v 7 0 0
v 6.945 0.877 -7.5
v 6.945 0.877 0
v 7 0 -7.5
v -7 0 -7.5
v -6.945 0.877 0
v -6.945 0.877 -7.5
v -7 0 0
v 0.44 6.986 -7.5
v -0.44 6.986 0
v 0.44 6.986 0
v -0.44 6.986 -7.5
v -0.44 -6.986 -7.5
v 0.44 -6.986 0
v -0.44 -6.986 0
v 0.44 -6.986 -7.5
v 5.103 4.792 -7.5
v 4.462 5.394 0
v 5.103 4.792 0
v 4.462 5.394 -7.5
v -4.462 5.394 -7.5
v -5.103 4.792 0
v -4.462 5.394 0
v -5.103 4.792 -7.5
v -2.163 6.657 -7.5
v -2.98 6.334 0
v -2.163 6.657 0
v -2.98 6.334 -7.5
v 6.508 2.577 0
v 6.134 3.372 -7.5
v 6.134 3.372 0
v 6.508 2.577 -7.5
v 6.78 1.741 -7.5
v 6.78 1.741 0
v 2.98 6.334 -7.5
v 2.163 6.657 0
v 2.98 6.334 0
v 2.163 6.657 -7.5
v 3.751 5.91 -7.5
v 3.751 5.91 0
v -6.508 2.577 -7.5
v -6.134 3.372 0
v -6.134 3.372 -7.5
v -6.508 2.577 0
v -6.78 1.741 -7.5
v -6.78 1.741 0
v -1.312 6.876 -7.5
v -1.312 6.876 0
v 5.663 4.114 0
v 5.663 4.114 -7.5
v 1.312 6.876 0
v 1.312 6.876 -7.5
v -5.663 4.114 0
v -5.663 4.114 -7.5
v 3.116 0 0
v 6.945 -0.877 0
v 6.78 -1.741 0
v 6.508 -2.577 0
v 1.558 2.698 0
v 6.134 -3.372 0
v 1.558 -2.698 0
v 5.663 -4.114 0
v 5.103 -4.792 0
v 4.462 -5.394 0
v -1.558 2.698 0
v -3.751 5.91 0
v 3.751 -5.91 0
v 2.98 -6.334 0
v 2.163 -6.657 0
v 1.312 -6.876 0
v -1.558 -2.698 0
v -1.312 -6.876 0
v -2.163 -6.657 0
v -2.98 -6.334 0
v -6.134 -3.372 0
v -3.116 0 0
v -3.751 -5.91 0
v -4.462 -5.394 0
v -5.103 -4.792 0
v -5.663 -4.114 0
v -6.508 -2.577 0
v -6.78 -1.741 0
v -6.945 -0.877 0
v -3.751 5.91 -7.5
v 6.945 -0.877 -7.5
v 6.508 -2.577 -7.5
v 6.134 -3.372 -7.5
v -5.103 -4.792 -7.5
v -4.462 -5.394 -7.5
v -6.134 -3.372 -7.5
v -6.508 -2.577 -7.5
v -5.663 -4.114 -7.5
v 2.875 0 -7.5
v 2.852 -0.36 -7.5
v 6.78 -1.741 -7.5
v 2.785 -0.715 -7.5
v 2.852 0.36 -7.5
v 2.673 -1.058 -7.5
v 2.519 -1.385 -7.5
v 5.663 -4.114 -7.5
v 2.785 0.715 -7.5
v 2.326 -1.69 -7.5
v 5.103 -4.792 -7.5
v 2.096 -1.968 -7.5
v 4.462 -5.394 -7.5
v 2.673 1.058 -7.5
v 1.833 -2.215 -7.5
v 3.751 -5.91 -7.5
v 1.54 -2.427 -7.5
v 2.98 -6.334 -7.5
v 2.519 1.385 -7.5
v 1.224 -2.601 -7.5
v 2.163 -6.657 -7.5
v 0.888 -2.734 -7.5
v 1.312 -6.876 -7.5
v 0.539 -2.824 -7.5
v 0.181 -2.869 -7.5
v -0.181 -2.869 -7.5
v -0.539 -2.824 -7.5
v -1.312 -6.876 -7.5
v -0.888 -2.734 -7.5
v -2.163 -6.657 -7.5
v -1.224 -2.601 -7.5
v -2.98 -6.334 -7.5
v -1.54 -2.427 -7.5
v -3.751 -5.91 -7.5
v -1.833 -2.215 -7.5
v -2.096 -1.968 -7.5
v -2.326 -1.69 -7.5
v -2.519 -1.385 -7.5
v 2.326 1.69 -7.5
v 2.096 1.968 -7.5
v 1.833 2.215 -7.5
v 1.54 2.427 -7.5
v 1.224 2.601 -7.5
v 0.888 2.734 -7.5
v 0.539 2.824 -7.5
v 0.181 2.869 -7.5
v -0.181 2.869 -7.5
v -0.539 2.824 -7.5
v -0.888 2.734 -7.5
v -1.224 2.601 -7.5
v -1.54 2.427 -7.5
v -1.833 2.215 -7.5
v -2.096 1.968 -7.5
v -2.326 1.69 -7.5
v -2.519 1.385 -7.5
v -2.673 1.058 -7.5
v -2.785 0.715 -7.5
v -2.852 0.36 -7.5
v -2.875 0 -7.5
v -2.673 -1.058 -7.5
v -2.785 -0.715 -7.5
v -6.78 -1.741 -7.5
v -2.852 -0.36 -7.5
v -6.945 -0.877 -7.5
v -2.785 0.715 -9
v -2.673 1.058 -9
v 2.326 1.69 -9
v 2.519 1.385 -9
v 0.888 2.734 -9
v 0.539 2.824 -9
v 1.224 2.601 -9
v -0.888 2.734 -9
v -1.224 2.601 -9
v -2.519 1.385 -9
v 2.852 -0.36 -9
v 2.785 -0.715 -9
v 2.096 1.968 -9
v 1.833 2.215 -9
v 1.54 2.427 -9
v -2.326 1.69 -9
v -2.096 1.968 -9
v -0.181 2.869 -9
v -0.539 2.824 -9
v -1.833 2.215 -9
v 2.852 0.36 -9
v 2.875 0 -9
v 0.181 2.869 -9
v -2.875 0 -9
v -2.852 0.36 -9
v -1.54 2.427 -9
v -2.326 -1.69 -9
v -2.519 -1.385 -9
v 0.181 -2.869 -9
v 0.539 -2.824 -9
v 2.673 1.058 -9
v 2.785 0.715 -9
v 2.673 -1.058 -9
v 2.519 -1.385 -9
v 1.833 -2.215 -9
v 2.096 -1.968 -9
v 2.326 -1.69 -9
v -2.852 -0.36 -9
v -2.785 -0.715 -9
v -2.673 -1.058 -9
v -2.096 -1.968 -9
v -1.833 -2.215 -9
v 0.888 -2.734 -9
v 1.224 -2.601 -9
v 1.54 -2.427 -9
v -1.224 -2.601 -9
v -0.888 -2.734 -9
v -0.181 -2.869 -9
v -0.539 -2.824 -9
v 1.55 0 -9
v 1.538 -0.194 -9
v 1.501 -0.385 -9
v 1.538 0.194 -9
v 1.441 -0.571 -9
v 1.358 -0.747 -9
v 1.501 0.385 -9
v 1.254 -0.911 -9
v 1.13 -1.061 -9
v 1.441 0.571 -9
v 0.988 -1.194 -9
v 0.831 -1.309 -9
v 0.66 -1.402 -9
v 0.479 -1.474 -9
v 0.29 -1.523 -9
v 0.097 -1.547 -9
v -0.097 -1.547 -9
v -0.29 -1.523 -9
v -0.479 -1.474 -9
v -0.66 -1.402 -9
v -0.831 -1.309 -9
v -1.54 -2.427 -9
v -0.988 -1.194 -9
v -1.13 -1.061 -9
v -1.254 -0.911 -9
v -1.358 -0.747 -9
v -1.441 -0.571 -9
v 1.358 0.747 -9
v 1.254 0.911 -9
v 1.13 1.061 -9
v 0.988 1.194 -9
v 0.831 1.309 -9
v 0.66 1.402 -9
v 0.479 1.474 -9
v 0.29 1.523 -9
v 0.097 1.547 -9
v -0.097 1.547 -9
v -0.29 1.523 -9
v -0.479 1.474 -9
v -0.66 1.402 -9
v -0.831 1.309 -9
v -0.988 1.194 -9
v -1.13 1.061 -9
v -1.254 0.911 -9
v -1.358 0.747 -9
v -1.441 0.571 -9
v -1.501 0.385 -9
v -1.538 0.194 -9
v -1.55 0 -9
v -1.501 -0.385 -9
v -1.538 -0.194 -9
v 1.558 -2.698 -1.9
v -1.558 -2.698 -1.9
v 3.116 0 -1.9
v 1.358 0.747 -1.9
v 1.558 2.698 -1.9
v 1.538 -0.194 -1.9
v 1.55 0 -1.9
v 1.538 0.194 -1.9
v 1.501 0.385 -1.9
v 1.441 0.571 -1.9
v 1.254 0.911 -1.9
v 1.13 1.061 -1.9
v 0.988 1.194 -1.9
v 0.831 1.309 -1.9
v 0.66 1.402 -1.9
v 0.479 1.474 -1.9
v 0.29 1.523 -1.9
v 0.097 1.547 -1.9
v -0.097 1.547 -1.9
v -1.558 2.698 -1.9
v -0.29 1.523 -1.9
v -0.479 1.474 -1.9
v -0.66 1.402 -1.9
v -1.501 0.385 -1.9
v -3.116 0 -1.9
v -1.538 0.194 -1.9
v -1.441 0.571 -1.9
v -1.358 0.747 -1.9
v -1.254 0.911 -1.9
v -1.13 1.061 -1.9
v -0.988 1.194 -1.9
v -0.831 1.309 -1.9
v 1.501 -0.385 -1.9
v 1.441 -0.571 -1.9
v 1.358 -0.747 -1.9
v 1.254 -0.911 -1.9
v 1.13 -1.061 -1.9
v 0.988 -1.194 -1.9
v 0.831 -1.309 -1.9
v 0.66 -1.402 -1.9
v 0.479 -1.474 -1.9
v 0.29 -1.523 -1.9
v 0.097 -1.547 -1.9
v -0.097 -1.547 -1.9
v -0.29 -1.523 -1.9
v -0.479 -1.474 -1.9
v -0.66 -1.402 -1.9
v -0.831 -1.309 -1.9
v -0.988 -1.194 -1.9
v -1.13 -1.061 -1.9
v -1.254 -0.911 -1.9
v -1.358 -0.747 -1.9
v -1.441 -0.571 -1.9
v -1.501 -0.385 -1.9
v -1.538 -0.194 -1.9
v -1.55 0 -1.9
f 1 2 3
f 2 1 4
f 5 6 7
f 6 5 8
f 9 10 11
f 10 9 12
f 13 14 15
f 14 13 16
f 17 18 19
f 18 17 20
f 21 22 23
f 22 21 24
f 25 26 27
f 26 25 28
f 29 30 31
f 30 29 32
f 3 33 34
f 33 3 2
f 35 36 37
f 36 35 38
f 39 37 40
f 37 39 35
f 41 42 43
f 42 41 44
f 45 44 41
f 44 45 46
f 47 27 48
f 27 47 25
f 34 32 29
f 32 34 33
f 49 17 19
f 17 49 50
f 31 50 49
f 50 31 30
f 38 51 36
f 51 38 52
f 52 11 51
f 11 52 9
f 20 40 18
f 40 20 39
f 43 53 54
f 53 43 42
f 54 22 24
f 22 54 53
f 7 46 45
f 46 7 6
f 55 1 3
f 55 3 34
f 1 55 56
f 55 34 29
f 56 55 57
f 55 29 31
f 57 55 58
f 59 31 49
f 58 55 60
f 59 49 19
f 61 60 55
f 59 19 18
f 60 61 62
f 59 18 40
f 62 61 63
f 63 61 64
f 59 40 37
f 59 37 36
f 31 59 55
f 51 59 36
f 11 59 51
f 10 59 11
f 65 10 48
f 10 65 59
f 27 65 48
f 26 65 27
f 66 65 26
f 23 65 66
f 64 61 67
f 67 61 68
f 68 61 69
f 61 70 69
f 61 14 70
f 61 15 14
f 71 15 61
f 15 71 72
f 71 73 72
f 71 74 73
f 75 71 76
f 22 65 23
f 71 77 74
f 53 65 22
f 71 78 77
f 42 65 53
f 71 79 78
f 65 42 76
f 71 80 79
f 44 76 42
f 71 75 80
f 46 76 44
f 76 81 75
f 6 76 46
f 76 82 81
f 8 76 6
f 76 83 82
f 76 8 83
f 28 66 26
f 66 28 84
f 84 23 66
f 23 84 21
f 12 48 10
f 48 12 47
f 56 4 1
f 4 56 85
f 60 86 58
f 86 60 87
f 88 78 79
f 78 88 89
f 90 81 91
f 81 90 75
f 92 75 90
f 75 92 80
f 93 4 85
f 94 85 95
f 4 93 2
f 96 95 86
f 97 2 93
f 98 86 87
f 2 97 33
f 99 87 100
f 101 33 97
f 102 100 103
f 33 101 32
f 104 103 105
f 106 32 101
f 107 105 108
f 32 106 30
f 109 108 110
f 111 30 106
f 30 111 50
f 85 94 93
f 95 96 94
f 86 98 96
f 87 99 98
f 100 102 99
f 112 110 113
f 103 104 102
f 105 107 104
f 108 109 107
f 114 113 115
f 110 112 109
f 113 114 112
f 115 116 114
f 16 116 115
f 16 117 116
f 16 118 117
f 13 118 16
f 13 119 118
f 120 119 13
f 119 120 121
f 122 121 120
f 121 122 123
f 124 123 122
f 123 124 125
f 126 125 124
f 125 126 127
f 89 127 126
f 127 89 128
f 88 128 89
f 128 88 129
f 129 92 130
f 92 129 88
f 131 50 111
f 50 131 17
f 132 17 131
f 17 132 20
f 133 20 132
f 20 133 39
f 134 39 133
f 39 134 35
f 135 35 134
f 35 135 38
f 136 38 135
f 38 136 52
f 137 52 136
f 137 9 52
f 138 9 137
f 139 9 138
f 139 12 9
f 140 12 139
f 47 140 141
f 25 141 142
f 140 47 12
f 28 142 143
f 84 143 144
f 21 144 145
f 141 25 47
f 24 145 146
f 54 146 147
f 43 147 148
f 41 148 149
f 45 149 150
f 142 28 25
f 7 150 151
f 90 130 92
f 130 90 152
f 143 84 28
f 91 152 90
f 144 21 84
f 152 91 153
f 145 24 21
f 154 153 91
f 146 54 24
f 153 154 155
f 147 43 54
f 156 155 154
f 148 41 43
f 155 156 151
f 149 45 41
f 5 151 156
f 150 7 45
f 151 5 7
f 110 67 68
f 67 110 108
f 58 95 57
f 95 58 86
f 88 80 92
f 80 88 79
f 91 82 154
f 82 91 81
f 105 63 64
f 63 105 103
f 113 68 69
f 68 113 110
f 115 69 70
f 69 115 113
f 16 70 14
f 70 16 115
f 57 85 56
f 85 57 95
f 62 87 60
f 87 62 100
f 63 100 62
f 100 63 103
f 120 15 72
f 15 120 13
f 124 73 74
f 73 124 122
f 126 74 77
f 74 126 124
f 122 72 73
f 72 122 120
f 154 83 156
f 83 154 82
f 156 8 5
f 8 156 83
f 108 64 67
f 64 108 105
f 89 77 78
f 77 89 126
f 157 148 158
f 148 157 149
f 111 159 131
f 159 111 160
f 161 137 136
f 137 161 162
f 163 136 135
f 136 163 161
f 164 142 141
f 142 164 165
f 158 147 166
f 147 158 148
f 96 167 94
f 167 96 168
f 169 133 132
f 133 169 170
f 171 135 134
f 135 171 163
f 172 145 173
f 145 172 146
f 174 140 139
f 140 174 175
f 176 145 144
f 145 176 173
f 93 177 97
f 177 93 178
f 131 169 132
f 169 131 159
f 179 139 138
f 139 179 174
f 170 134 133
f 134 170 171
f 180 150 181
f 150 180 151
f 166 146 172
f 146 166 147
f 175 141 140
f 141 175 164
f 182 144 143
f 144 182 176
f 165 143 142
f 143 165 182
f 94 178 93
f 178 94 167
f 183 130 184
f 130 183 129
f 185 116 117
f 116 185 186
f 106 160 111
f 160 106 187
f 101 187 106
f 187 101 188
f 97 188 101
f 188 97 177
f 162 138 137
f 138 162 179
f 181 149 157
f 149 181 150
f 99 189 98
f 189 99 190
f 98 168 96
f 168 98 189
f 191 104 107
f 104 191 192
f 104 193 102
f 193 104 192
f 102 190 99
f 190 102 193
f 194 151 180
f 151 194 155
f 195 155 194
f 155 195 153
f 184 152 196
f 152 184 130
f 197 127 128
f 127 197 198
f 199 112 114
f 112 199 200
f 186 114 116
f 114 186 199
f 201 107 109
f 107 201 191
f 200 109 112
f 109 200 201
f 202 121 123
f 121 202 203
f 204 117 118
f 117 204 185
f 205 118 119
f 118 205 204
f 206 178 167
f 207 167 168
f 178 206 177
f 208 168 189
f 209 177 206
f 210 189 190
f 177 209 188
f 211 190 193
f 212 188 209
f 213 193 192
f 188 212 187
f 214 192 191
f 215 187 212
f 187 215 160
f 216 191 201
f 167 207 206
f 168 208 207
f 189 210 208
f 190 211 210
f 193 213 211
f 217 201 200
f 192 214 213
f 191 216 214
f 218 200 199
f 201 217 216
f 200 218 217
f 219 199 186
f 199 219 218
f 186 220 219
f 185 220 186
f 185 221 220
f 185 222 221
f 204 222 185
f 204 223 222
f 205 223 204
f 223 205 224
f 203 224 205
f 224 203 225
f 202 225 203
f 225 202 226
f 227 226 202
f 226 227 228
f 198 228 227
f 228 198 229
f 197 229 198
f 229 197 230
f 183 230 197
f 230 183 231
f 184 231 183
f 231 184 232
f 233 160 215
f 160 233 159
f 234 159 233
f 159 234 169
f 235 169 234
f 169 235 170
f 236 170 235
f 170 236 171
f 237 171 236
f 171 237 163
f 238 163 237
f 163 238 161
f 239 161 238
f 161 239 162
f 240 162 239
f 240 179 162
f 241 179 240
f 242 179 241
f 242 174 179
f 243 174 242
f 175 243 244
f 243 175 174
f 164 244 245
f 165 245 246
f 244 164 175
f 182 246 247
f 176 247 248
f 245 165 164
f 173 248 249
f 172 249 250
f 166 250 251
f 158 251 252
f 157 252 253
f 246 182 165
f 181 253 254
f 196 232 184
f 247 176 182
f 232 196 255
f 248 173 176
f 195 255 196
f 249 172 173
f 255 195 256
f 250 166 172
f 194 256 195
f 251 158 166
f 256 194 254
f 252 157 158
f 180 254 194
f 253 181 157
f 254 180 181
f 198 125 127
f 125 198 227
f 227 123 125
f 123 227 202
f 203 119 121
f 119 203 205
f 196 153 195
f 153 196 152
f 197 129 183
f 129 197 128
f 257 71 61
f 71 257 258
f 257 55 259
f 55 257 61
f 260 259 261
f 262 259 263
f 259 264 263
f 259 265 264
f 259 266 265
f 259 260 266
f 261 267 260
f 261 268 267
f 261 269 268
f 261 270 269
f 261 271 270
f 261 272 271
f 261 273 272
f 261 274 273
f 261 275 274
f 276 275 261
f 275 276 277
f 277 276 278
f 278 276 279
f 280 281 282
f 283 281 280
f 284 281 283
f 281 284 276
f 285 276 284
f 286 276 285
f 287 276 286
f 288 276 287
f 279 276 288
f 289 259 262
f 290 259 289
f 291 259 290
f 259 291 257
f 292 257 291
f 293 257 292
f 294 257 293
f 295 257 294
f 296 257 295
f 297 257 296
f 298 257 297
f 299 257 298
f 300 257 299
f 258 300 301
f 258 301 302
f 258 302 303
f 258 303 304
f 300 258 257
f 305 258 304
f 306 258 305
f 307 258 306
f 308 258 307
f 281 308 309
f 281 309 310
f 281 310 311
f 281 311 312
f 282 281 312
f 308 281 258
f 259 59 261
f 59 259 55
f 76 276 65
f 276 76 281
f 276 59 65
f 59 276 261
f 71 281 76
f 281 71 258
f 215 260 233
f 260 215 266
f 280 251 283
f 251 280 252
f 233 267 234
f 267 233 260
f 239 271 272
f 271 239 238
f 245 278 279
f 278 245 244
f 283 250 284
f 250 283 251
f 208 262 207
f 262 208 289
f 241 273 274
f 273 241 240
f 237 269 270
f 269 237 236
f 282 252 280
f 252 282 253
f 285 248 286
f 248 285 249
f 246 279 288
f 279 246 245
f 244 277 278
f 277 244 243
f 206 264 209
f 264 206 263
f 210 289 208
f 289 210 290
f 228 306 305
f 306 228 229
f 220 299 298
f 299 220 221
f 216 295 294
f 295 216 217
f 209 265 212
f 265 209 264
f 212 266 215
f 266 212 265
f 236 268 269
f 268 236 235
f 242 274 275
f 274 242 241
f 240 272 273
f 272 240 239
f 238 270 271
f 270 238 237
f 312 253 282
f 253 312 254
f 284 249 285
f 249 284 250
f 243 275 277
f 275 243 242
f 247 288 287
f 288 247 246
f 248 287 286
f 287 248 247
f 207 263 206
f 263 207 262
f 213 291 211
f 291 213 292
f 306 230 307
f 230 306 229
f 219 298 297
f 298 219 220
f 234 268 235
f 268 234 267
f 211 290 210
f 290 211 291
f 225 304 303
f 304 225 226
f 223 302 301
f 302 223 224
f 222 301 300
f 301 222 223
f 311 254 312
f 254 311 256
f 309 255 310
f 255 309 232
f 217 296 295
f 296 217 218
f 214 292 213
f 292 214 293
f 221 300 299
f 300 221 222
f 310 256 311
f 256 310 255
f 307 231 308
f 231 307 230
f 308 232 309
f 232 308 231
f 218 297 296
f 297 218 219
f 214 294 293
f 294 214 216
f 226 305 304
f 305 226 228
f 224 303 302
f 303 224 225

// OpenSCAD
$fn = 50;


difference() {
	union() {
		translate(v = [0, 0, -7.5000000000]) {
			cylinder(h = 7.5000000000, r = 7.0000000000);
		}
		translate(v = [0, 0, -9.0000000000]) {
			cylinder(h = 9, r = 2.8750000000);
		}
	}
	union() {
		translate(v = [0, 0, 0]) {
			rotate(a = [0, 0, 0]) {
				difference() {
					union() {
						translate(v = [0, 0, -1.9000000000]) {
							linear_extrude(height = 1.9000000000) {
								polygon(points = [[3.1158000000, 0.0000000000], [1.5579000000, 2.6983619531], [-1.5579000000, 2.6983619531], [-3.1158000000, 0.0000000000], [-1.5579000000, -2.6983619531], [1.5579000000, -2.6983619531]]);
							}
						}
					}
					union();
				}
			}
		}
		#translate(v = [0, 0, -100.0000000000]) {
			cylinder(h = 200, r = 1.5500000000);
		}
	}
}
